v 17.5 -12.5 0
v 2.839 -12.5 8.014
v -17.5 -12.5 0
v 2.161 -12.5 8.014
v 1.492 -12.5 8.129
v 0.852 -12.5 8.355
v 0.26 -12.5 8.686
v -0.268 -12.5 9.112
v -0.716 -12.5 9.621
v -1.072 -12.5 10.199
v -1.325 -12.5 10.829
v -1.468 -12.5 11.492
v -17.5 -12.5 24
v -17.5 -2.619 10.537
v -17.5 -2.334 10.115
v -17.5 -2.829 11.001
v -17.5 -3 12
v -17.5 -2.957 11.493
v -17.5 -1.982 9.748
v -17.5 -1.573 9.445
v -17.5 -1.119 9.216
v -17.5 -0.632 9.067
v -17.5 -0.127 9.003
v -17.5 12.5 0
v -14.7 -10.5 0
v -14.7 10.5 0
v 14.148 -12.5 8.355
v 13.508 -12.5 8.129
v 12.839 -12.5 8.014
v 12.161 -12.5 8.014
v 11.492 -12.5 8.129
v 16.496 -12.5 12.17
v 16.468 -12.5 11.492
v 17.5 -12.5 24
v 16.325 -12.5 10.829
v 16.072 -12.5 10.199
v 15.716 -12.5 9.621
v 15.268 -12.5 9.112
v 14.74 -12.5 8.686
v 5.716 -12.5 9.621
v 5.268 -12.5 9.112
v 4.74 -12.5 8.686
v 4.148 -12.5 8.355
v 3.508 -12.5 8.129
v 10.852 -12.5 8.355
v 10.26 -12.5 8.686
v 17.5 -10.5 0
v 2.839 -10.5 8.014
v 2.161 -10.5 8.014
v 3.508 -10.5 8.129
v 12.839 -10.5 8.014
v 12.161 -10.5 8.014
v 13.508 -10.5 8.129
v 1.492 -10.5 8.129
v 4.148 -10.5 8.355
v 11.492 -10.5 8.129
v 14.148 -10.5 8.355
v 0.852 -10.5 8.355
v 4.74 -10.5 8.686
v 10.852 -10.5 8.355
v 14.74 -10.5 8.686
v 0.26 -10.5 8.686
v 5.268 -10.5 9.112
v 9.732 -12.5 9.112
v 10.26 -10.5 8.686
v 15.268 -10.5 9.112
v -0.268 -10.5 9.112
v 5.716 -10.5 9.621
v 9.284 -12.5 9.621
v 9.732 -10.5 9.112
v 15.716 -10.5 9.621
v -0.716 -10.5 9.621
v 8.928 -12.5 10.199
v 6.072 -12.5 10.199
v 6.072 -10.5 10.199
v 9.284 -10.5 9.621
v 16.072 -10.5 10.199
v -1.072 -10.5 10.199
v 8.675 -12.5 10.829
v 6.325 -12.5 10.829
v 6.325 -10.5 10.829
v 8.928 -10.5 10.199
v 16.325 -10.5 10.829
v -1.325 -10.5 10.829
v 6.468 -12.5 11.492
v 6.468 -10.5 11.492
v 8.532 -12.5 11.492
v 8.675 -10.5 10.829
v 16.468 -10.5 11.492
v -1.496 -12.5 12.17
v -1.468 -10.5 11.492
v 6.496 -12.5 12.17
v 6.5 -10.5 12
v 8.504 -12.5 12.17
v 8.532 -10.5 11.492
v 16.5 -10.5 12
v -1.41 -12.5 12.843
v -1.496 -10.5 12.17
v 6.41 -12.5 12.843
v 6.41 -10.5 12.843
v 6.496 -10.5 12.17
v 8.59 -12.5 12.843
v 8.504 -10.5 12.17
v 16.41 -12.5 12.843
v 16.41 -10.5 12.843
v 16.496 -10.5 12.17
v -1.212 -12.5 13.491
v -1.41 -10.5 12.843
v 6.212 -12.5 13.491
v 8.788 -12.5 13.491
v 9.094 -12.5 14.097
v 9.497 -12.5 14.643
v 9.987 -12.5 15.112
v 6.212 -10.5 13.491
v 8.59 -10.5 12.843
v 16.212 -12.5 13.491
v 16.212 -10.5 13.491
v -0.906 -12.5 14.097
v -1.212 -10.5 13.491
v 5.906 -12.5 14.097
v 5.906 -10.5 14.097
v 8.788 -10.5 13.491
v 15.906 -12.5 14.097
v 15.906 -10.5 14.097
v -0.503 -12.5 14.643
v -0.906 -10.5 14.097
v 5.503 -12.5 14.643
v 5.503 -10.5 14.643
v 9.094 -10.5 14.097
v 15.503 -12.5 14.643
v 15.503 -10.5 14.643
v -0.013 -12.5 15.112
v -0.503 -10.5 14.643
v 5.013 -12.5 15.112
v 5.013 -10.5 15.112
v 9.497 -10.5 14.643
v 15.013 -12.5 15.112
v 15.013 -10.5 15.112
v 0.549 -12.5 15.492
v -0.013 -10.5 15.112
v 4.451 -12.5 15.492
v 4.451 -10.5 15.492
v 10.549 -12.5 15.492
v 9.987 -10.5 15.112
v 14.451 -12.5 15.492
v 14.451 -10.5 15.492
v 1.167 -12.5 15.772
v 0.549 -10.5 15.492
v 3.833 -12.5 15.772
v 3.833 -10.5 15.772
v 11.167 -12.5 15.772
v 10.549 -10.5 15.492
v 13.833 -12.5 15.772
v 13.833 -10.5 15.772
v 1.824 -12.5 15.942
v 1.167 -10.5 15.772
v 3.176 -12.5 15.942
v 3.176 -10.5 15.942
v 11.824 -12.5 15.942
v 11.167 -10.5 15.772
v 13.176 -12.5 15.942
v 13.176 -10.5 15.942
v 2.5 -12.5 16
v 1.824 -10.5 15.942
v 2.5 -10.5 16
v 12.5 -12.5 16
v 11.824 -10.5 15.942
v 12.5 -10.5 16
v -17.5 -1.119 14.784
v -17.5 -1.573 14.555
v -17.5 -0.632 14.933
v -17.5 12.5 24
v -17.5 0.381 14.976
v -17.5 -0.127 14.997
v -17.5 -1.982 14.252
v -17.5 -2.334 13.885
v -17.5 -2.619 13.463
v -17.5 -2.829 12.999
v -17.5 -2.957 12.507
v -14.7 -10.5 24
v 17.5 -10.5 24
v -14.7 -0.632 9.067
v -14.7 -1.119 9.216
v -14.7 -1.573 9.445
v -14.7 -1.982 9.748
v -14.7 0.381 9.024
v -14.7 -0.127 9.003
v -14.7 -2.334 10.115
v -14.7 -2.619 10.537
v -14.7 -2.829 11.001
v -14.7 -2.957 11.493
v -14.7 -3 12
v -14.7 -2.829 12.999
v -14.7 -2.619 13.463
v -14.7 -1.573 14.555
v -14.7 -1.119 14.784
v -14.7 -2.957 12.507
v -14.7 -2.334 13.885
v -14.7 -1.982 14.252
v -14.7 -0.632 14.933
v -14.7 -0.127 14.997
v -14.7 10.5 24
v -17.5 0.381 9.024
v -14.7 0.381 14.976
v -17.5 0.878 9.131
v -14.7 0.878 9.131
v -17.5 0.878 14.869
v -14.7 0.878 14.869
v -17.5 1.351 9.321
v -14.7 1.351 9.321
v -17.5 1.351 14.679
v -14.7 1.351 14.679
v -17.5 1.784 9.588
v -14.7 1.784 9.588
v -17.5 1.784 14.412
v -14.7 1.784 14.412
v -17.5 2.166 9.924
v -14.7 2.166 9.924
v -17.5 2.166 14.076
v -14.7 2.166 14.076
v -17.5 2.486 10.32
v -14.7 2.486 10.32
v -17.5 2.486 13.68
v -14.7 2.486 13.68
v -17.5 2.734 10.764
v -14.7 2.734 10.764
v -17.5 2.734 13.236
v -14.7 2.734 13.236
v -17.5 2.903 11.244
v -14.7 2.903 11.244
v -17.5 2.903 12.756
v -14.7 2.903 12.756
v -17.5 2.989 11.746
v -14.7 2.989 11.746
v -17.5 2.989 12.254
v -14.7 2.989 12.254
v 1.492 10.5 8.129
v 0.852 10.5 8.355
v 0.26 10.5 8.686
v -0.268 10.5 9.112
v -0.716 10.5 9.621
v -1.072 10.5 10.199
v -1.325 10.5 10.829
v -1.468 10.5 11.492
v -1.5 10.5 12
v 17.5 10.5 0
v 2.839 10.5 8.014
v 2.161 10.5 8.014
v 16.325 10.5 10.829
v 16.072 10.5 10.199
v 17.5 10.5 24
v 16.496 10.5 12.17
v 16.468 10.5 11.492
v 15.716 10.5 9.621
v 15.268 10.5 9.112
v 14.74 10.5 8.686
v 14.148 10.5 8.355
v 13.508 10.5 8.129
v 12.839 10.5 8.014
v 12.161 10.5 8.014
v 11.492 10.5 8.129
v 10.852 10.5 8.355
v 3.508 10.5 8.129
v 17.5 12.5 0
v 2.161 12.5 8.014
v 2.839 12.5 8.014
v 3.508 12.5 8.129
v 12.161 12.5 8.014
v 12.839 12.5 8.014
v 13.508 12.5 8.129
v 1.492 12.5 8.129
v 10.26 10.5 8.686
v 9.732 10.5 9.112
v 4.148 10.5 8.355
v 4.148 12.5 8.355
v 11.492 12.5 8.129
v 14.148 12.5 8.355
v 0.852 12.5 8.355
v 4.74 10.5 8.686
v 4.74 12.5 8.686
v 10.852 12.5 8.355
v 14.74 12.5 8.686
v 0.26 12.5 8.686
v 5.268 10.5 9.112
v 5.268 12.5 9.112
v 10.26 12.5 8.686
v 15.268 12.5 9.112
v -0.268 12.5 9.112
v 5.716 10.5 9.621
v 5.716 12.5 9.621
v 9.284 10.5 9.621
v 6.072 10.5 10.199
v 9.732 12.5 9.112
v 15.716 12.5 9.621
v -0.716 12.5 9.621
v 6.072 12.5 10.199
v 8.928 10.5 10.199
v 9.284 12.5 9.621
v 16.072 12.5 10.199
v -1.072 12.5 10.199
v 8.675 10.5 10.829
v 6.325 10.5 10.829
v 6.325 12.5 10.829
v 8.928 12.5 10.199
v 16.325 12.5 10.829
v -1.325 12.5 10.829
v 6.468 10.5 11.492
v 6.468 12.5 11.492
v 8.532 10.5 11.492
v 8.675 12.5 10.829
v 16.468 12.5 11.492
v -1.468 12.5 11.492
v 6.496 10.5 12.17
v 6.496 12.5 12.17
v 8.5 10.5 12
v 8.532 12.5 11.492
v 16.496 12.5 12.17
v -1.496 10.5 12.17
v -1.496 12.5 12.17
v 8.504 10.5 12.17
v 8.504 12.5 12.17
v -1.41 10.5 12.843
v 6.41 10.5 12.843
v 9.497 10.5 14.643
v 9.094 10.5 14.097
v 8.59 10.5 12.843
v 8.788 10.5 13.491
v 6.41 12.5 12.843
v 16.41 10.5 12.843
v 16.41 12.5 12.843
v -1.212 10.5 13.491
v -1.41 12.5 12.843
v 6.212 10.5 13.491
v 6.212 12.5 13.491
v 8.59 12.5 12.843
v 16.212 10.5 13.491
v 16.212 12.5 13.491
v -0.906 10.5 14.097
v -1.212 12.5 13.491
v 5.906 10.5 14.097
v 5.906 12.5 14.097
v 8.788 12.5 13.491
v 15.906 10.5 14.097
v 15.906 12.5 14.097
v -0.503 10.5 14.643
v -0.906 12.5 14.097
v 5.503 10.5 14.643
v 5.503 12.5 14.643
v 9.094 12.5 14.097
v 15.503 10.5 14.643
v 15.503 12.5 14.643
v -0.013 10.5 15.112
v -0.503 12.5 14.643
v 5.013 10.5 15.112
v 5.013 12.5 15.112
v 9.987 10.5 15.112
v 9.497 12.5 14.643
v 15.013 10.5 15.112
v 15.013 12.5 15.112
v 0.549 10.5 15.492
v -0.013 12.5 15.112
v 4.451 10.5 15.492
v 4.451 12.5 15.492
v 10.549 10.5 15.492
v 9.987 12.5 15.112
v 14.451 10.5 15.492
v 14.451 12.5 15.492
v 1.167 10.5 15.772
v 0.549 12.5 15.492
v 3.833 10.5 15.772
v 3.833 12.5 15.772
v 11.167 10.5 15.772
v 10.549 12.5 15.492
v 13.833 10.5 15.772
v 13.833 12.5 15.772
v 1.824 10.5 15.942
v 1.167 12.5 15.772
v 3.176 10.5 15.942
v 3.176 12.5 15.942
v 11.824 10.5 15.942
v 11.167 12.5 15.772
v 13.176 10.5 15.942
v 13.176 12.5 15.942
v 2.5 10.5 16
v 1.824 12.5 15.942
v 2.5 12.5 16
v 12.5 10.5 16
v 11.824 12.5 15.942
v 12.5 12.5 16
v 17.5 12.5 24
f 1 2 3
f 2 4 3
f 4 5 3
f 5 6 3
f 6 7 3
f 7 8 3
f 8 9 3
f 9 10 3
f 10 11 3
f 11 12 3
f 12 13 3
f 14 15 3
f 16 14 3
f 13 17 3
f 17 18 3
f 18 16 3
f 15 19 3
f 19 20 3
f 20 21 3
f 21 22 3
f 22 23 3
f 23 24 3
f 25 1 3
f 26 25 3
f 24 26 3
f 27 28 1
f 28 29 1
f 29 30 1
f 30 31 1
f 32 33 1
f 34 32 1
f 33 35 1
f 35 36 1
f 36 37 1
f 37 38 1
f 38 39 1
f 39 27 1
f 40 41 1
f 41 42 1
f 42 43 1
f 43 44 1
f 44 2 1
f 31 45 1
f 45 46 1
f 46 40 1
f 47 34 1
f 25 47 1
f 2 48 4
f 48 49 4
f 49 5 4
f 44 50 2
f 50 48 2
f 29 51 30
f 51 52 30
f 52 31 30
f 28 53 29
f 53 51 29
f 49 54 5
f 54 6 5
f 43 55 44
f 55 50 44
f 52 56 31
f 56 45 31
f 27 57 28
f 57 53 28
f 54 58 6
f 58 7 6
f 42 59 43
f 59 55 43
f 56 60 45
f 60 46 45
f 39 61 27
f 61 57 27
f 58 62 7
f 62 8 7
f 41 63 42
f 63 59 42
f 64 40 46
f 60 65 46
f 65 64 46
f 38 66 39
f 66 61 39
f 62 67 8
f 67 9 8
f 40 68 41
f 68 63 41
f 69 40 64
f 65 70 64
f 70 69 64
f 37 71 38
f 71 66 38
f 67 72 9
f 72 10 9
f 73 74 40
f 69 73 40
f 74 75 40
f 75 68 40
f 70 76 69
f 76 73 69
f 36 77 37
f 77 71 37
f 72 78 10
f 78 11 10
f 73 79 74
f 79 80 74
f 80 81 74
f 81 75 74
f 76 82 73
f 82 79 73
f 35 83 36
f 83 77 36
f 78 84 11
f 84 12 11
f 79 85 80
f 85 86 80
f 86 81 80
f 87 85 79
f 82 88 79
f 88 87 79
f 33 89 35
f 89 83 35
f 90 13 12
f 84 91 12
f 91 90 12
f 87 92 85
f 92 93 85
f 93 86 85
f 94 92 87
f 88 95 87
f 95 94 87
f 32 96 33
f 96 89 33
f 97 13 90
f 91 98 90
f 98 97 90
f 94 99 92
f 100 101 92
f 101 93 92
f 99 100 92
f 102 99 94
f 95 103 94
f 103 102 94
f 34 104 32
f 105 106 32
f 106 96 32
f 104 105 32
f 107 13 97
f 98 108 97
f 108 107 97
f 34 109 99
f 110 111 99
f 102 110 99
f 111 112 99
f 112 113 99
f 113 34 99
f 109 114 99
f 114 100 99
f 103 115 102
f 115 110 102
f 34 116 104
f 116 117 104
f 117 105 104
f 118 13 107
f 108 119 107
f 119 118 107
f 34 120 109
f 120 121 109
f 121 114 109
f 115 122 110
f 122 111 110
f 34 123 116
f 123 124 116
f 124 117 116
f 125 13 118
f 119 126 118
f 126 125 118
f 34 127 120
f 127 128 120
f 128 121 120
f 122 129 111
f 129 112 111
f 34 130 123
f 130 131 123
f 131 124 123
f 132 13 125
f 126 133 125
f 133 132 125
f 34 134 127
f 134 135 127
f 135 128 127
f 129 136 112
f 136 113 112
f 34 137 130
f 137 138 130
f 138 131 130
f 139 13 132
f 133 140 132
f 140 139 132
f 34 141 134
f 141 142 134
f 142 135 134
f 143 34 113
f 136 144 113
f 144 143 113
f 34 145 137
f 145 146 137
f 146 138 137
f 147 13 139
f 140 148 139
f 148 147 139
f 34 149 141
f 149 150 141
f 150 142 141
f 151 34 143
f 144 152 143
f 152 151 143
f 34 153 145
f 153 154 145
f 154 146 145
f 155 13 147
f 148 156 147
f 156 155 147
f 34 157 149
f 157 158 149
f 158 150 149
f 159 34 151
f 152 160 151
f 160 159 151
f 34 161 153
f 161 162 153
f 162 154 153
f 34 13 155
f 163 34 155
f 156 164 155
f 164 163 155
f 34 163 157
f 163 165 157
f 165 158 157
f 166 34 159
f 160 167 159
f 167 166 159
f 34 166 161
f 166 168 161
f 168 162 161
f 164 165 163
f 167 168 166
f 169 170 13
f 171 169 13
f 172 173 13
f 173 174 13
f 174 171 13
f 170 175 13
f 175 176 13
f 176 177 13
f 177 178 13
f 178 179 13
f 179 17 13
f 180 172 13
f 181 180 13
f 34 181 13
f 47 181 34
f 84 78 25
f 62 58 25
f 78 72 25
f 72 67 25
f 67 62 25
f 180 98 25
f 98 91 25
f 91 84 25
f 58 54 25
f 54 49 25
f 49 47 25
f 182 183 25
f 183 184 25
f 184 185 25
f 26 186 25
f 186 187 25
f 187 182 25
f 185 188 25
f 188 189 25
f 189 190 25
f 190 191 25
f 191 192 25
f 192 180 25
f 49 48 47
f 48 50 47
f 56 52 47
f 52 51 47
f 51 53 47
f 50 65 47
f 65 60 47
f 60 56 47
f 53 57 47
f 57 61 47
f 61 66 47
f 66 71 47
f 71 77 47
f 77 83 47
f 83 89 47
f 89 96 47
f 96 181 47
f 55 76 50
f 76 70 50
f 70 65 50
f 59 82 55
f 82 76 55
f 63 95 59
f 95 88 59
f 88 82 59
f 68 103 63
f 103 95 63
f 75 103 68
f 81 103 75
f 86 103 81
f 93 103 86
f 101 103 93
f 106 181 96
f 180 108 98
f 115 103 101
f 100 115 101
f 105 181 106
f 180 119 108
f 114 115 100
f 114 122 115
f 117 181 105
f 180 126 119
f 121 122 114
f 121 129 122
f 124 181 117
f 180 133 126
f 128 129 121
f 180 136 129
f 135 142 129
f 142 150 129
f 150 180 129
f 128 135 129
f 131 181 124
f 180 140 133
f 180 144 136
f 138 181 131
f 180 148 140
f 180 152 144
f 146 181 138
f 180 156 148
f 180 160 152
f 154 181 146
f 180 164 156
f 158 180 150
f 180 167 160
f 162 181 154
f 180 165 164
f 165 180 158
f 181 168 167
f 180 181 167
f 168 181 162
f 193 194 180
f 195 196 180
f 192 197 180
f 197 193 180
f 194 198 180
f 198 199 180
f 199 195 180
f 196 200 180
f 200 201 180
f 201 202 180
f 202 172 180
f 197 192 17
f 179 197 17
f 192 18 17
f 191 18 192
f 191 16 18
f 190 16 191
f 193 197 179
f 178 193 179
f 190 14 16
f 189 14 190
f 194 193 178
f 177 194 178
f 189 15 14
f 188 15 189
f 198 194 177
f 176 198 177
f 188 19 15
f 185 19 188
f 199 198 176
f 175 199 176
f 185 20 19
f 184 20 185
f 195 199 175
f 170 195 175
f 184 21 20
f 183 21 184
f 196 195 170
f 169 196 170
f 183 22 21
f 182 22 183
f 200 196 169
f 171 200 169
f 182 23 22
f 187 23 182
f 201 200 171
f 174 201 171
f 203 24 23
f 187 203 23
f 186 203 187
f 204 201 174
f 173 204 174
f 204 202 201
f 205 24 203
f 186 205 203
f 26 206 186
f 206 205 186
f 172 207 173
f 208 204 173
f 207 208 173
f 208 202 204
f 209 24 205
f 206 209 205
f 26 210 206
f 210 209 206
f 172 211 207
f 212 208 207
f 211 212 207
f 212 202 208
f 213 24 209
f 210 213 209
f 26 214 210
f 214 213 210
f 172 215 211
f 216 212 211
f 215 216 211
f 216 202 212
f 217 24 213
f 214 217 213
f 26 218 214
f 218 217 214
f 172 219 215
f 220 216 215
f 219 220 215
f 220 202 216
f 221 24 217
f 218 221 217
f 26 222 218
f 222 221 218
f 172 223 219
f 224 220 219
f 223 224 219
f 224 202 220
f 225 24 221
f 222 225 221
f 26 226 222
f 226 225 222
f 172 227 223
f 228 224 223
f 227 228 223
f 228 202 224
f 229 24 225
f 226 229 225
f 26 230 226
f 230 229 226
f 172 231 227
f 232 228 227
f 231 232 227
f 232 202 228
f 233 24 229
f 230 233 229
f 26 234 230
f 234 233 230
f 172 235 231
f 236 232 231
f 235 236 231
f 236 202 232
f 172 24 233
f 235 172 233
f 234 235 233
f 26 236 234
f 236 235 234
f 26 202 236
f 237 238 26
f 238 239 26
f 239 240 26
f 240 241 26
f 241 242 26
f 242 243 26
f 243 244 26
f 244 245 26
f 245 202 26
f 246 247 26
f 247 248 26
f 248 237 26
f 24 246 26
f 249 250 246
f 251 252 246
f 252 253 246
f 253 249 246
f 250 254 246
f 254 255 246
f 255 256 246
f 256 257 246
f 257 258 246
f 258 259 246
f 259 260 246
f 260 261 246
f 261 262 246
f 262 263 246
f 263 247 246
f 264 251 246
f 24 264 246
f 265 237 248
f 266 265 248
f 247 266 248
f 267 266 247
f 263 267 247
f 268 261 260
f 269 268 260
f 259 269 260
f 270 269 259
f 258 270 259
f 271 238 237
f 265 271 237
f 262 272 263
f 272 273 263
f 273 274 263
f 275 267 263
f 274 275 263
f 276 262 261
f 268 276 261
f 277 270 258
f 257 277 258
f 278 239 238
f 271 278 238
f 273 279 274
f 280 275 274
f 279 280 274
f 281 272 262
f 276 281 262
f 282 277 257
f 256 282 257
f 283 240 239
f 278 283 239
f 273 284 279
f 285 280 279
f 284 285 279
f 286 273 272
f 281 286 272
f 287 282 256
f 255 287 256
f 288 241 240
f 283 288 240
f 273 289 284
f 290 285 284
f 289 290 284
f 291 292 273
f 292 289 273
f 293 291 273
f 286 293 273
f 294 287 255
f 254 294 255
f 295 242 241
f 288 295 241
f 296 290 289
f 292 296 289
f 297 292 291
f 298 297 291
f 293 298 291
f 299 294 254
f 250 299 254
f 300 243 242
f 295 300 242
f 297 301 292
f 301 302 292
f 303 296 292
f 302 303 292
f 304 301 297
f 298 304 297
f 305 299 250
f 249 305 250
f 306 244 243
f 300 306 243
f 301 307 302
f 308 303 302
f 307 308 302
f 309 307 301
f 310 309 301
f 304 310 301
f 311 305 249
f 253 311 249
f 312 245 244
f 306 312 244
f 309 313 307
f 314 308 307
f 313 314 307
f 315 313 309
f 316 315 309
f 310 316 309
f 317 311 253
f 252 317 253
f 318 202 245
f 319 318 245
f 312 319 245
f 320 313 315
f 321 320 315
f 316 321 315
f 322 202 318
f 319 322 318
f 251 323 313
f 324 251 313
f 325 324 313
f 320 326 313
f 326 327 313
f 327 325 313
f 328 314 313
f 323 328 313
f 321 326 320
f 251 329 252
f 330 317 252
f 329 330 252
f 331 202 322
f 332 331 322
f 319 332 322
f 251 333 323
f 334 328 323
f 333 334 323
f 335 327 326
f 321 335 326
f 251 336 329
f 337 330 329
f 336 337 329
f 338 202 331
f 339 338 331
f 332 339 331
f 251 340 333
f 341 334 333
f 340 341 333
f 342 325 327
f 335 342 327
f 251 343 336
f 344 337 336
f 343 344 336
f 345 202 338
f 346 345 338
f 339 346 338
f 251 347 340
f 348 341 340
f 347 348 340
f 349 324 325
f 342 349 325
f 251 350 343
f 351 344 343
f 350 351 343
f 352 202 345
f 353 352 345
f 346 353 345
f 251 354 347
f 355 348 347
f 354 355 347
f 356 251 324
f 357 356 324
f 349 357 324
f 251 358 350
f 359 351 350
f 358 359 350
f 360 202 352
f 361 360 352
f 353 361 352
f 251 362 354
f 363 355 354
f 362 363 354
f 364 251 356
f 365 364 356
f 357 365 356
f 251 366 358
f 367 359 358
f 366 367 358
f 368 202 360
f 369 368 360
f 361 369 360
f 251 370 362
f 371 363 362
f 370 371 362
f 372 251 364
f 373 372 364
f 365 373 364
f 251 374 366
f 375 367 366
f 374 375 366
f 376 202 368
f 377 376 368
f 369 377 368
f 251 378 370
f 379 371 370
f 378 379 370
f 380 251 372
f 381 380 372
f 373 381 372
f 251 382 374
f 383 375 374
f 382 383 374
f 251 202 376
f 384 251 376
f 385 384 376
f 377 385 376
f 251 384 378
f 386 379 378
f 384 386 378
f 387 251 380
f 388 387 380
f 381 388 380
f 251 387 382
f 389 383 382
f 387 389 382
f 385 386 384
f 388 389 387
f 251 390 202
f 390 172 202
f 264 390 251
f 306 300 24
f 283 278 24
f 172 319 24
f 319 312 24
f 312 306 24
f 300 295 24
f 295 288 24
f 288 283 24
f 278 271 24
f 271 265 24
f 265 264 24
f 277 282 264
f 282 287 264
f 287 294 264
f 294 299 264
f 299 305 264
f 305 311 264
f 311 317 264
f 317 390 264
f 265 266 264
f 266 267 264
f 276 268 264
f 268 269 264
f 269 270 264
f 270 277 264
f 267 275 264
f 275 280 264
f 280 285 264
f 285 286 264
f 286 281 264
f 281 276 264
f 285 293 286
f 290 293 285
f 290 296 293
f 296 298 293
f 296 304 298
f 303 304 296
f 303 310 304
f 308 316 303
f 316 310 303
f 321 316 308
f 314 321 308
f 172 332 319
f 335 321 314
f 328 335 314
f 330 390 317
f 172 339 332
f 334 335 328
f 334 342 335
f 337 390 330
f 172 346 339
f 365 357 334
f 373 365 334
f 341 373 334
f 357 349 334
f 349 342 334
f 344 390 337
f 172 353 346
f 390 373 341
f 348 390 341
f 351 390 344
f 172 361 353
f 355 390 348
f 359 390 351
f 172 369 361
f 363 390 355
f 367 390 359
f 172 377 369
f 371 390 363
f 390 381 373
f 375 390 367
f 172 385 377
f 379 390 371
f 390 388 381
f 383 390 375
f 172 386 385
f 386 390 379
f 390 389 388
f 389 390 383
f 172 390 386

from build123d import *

# Parameters (mm, degrees)
BOSS_EXTRU_1_DEPTH      = 24
ENL_V_MAT_EXTRU_1_REACH = 40.823
ESQUISSE2_R             = 4
ENL_V_MAT_EXTRU_2_REACH = 46.241
ESQUISSE3_R             = 3


with BuildPart() as part:
    # Esquisse1 → Boss.-Extru.1 (new body)
    with BuildSketch(Plane.XY):
        Polygon((17.5, -10.5), (17.5, -12.5), (-17.5, -12.5), (-17.5, 12.5), (17.5, 12.5), (17.5, 10.5), (-14.7, 10.5), (-14.7, -10.5), align=None)
    extrude(amount=BOSS_EXTRU_1_DEPTH)

    # Enlèv. mat.-Extru.1: up to this face of the body (flat: up to its plane)
    enl_v_mat_extru_1_end = Plane(part.part.faces().sort_by_distance((0, -12.5, 12))[0])
    # Esquisse2 → Enlèv. mat.-Extru.1 (cut, up to the picked face)
    with BuildSketch(Plane(origin=(0, 12.5, 0), x_dir=(1, 0, 0), z_dir=(0, 1, 0)), mode=Mode.PRIVATE) as enl_v_mat_extru_1_sk1:
        with Locations(Location((12.5, -12, 0), (0, 0, 270))):
            Circle(ESQUISSE2_R)
    enl_v_mat_extru_1_tool1 = split(extrude(enl_v_mat_extru_1_sk1.sketch, amount=-ENL_V_MAT_EXTRU_1_REACH, mode=Mode.PRIVATE), bisect_by=enl_v_mat_extru_1_end, keep=Keep.BOTH, mode=Mode.PRIVATE)
    # Esquisse2 → Enlèv. mat.-Extru.1 (cut, up to the picked face)
    with BuildSketch(Plane(origin=(0, 12.5, 0), x_dir=(1, 0, 0), z_dir=(0, 1, 0)), mode=Mode.PRIVATE) as enl_v_mat_extru_1_sk2:
        with Locations(Location((2.5, -12, 0), (0, 0, 270))):
            Circle(ESQUISSE2_R)
    enl_v_mat_extru_1_tool2 = split(extrude(enl_v_mat_extru_1_sk2.sketch, amount=-ENL_V_MAT_EXTRU_1_REACH, mode=Mode.PRIVATE), bisect_by=enl_v_mat_extru_1_end, keep=Keep.BOTH, mode=Mode.PRIVATE)
    add(enl_v_mat_extru_1_tool1.solids().sort_by(Axis((12.5, 12.5, 12), (0, -1, 0)))[0], mode=Mode.SUBTRACT)
    add(enl_v_mat_extru_1_tool2.solids().sort_by(Axis((2.5, 12.5, 12), (0, -1, 0)))[0], mode=Mode.SUBTRACT)

    # Esquisse3 → Enlèv. mat.-Extru.2 (cut, up to next)
    with BuildSketch(Plane.ZY.offset(17.5), mode=Mode.PRIVATE) as enl_v_mat_extru_2_sk1:
        with Locations(Location((12, 0, 0), (0, 0, 270))):
            Circle(ESQUISSE3_R)
    enl_v_mat_extru_2_tool1 = extrude(enl_v_mat_extru_2_sk1.sketch, amount=-ENL_V_MAT_EXTRU_2_REACH, mode=Mode.PRIVATE) & part.part
    add(enl_v_mat_extru_2_tool1.solids().sort_by_distance((-17.5, 0, 12))[0], mode=Mode.SUBTRACT)


solid = part.part
